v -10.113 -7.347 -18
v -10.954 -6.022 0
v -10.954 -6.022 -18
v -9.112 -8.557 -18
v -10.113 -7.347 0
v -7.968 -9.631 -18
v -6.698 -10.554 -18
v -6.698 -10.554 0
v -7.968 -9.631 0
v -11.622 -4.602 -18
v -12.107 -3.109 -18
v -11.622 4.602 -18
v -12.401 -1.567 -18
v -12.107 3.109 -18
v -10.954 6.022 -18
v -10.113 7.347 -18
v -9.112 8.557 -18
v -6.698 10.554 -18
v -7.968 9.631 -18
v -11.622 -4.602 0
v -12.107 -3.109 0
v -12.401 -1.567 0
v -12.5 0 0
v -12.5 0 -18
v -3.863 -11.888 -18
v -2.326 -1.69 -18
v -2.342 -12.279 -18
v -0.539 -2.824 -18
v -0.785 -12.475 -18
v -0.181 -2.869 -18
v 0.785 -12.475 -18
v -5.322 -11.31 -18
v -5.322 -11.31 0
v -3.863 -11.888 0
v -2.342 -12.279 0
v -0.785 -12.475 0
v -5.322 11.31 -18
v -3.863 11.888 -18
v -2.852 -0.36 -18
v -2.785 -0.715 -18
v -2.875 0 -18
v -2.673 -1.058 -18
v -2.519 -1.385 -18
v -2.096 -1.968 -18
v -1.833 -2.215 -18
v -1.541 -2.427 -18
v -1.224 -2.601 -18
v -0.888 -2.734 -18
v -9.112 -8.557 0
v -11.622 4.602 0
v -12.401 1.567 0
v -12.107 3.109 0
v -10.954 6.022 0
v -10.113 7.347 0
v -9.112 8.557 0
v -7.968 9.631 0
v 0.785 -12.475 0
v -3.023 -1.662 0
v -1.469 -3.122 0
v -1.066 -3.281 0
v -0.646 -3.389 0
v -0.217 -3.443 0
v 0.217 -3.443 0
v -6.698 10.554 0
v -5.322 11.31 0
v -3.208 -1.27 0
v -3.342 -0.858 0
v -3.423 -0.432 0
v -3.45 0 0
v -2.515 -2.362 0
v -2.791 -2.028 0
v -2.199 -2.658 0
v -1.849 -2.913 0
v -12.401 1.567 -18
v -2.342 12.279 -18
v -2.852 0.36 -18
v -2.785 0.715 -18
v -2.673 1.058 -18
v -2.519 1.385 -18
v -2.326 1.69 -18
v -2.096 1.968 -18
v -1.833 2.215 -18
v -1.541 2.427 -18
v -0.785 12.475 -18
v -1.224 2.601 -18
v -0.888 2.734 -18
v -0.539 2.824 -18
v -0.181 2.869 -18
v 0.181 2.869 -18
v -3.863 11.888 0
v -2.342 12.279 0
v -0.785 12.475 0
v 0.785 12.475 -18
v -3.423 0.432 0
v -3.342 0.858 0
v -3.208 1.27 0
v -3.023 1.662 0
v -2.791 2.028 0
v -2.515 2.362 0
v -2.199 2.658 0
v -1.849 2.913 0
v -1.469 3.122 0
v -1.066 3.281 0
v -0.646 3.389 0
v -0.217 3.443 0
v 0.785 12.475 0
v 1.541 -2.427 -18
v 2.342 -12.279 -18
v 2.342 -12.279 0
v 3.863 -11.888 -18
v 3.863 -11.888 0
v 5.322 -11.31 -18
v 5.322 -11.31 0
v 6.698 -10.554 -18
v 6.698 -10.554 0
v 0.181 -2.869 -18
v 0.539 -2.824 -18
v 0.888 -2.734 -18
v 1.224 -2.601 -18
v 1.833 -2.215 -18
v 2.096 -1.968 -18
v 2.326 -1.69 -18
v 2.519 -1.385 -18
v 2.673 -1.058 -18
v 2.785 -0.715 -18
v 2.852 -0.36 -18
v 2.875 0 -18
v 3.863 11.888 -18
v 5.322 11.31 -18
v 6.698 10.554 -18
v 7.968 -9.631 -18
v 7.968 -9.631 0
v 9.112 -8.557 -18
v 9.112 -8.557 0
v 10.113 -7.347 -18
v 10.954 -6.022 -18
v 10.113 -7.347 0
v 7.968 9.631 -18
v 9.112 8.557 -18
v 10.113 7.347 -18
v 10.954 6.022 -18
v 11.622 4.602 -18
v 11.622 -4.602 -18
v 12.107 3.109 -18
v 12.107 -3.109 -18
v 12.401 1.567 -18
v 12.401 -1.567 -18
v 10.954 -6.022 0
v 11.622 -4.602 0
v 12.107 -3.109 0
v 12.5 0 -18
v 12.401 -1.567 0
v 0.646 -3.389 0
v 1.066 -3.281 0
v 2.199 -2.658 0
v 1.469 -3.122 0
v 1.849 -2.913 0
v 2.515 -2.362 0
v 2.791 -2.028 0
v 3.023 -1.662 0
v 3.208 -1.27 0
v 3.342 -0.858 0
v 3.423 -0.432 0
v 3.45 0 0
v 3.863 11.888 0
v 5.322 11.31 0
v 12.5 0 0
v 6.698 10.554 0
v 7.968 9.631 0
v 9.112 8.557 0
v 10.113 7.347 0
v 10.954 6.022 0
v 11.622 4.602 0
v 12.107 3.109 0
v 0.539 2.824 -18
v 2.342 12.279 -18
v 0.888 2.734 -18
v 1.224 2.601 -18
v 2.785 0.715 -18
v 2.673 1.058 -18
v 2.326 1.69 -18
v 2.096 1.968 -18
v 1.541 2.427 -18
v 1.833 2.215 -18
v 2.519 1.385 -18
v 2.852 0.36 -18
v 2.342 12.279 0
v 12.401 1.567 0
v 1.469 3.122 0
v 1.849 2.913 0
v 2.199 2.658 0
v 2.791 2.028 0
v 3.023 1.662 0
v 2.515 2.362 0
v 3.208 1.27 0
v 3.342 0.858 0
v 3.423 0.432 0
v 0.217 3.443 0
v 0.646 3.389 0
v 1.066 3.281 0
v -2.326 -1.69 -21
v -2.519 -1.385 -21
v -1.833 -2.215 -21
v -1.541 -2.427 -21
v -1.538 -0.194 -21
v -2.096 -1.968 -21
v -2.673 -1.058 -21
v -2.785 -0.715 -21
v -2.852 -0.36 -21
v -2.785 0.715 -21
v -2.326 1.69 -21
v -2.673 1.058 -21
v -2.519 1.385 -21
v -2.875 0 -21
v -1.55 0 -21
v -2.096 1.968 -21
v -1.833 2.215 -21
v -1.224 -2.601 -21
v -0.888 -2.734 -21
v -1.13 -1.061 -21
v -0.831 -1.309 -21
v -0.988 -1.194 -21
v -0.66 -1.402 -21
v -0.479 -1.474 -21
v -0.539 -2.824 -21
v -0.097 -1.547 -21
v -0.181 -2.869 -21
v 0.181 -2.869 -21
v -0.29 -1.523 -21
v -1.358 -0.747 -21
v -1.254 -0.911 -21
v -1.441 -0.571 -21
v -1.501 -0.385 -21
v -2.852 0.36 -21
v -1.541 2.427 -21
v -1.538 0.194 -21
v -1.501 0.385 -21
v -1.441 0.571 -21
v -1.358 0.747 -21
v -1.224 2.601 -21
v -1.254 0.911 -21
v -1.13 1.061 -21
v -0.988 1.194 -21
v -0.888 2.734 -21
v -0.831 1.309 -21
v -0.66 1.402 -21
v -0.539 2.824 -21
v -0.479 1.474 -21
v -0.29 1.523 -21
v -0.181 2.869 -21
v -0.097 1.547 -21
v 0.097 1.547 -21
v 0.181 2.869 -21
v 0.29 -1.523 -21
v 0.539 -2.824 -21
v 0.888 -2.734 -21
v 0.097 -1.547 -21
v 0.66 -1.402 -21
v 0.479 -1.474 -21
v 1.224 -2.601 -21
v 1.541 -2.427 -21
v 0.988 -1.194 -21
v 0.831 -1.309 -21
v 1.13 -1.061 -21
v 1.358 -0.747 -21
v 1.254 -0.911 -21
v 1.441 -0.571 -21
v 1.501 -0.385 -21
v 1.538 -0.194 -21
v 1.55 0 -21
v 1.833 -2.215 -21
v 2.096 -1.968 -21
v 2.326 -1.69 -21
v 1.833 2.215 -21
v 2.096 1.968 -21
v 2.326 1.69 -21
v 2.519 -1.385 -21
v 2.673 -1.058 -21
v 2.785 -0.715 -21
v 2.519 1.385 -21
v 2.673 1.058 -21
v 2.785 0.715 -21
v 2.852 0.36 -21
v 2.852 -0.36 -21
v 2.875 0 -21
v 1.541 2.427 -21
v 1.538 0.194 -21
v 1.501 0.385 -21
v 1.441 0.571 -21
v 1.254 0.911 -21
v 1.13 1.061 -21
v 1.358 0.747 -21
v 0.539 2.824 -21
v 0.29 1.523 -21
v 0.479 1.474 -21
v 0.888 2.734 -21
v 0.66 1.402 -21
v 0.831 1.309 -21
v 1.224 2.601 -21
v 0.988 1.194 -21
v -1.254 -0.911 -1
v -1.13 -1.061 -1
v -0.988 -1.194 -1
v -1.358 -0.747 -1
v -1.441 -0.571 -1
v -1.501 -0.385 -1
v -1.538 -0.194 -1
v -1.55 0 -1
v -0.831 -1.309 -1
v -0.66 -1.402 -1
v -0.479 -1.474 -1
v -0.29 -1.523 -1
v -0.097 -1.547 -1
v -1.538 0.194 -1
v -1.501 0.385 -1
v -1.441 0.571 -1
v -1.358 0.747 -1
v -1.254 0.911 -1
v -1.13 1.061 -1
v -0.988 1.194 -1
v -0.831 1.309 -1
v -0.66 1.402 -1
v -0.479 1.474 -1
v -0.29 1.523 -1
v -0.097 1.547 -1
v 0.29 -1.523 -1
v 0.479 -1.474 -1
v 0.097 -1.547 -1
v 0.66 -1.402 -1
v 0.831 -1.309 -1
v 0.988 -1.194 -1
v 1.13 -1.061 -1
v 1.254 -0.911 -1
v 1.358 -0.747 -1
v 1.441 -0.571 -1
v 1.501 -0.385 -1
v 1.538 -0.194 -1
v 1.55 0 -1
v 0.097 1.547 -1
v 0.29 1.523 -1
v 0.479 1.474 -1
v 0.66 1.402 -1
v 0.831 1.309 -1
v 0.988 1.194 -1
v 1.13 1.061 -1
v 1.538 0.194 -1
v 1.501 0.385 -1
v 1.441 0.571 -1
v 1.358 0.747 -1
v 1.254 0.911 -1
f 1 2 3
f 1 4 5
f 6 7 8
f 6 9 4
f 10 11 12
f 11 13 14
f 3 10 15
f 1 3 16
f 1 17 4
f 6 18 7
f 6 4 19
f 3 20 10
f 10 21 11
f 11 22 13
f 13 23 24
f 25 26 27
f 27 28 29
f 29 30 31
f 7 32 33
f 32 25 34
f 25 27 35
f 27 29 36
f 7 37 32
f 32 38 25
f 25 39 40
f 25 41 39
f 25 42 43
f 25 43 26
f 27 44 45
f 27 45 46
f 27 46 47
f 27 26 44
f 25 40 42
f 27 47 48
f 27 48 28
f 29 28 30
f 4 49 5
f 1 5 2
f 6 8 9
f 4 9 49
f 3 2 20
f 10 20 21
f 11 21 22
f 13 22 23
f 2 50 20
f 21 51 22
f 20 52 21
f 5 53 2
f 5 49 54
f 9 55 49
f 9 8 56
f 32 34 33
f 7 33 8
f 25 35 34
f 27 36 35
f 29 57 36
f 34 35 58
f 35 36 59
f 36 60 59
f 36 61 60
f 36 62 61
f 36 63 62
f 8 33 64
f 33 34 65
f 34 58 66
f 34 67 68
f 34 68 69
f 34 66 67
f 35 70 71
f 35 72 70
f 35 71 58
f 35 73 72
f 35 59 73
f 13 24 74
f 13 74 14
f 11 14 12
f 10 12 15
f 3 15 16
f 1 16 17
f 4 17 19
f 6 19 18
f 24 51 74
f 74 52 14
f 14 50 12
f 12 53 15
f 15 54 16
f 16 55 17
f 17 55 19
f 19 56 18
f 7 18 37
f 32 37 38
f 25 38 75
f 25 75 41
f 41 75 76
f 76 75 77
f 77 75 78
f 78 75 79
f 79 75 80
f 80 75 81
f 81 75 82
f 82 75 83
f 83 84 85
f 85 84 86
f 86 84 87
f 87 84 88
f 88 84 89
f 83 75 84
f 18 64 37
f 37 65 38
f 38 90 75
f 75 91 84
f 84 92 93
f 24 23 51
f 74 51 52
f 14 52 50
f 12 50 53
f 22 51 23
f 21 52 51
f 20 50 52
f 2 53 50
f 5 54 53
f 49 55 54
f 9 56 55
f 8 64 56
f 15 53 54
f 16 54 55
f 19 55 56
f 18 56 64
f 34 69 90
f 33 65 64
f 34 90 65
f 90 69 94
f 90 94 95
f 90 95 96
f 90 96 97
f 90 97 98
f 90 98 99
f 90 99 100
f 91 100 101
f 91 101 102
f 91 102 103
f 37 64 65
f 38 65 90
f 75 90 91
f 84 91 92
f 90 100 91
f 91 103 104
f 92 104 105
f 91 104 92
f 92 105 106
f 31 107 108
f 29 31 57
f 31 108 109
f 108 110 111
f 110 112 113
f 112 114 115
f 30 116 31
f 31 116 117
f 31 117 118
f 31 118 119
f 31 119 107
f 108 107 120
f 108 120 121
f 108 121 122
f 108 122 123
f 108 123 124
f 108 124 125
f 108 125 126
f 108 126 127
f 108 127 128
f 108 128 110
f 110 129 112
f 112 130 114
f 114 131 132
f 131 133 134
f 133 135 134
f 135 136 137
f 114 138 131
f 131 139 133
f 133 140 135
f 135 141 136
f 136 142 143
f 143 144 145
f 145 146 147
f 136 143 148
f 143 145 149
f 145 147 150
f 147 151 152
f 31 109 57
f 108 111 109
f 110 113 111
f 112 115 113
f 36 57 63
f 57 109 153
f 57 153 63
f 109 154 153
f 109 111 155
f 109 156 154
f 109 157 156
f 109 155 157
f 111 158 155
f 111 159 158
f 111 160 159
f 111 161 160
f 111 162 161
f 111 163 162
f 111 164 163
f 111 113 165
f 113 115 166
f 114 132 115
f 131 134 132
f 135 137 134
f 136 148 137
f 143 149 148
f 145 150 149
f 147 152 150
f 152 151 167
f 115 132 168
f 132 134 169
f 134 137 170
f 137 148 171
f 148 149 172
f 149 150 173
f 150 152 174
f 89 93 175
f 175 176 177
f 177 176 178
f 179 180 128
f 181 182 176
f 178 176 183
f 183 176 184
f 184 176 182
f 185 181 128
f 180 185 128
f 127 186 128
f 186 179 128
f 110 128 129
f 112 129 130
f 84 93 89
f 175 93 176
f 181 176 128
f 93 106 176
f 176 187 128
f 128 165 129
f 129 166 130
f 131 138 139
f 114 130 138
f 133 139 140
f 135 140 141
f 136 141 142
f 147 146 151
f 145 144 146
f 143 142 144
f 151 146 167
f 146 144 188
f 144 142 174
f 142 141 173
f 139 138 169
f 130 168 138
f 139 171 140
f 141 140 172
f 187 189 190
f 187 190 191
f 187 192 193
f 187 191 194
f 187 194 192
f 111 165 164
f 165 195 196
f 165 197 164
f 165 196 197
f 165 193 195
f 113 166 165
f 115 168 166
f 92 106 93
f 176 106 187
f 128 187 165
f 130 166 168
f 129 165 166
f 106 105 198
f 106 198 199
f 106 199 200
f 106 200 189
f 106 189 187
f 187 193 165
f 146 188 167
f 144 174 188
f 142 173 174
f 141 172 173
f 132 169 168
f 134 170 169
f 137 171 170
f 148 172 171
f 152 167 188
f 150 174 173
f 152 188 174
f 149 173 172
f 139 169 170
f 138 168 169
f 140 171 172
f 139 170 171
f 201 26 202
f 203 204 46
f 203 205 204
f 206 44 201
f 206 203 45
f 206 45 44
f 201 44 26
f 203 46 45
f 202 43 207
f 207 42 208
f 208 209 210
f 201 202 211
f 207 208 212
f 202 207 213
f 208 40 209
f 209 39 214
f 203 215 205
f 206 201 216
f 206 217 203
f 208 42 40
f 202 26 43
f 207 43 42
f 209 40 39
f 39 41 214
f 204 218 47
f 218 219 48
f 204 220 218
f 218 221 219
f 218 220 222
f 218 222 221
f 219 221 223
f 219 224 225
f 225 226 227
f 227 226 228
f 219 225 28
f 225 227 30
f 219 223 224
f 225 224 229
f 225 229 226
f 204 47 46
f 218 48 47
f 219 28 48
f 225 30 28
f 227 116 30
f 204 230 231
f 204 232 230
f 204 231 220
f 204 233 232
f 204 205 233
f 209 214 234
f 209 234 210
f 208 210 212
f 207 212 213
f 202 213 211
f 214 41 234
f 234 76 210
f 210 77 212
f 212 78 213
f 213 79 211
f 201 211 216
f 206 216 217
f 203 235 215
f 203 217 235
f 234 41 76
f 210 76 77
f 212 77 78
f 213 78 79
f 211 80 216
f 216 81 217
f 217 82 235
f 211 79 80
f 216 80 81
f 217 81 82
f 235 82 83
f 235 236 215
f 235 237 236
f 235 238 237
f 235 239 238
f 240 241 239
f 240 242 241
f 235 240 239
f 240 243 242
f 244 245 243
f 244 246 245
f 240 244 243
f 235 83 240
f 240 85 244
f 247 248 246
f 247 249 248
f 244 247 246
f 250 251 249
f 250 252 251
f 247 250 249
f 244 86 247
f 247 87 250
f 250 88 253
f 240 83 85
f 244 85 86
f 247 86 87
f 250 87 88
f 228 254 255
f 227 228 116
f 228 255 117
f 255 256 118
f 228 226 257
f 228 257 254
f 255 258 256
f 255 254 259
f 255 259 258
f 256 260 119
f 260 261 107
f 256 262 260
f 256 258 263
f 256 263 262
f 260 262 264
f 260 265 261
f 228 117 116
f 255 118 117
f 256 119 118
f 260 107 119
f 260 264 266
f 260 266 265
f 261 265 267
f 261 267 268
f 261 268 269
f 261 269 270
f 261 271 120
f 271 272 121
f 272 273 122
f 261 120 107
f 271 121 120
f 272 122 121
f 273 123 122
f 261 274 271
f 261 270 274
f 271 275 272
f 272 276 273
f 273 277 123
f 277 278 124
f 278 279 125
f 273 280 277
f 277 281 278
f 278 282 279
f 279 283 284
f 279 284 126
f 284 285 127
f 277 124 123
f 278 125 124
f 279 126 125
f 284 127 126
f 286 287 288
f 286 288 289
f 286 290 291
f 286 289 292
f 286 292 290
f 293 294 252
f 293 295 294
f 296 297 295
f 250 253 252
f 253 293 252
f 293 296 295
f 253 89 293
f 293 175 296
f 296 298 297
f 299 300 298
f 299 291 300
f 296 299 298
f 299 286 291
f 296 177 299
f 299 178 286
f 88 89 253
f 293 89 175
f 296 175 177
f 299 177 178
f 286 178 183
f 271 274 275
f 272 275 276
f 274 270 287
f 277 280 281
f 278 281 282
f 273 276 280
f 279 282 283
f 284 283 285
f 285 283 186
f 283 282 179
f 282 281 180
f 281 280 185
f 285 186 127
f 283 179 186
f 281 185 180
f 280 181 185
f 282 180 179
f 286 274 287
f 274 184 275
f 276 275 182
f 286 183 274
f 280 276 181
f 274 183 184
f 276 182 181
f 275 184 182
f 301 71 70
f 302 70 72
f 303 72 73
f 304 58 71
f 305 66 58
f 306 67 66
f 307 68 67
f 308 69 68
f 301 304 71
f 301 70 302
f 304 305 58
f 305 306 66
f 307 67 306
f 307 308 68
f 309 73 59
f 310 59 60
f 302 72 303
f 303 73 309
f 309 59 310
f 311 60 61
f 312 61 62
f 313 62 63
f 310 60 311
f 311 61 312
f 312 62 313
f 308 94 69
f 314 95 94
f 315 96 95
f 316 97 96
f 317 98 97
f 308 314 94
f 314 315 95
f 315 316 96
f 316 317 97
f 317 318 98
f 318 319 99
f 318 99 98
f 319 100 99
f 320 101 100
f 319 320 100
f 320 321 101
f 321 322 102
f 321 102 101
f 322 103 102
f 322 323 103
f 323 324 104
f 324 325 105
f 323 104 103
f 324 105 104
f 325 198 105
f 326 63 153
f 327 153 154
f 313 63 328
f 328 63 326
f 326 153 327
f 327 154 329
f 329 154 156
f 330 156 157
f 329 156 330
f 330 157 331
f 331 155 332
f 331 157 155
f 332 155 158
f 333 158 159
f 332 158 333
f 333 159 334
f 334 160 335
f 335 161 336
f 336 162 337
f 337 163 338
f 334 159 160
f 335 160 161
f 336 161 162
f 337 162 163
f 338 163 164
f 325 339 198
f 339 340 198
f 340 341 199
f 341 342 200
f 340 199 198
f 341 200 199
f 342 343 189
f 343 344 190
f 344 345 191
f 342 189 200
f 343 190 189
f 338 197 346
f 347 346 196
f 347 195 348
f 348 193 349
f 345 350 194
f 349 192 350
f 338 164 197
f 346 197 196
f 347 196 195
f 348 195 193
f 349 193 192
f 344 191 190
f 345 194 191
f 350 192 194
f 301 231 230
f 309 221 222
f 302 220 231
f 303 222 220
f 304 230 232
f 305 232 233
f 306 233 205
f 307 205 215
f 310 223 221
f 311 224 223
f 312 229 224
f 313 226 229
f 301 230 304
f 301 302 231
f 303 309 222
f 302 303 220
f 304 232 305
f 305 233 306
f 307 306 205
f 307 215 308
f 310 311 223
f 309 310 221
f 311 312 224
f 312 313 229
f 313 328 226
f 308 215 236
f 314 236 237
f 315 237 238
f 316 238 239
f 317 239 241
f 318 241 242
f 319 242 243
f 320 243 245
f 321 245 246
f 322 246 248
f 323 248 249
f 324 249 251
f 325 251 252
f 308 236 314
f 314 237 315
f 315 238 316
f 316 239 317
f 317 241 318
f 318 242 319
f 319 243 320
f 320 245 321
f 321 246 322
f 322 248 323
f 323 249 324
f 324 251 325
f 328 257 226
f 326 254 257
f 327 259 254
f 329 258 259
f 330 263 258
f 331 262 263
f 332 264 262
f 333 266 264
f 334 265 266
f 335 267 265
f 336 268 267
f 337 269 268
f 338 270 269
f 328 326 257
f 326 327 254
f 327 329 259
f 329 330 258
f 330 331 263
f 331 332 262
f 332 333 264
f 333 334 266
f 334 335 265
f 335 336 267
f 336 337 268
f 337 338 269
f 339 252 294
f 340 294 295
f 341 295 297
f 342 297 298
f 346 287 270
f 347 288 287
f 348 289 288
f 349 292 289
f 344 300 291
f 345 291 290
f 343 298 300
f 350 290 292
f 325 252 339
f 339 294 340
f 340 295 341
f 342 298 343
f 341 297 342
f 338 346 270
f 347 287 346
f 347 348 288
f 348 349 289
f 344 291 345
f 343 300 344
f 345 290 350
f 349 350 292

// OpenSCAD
$fn = 50;

difference() {
	union() {
		translate(v = [0, 0, -18.0]) {
			cylinder(h = 18, r = 12.5);
		}
		#translate(v = [0, 0, -21.0]) {
			cylinder(h = 21, r = 2.875);
		}
	}
	union() {
		translate(v = [0, 0, 0]) {
			rotate(a = [0, 0, 0]) {
				difference() {
					union() {
						translate(v = [0, 0, -21.0]) {
							cylinder(h = 21, r = 1.25);
						}
						translate(v = [0, 0, -1.0]) {
							cylinder(h = 1.0, r1 = 1.55, r2 = 3.45);
						}
						translate(v = [0, 0, -21.0]) {
							cylinder(h = 21, r = 1.55);
						}
						translate(v = [0, 0, -21.0]) {
							cylinder(h = 21, r = 1.25);
						}
					}
					union();
				}
			}
		}
	}
}
